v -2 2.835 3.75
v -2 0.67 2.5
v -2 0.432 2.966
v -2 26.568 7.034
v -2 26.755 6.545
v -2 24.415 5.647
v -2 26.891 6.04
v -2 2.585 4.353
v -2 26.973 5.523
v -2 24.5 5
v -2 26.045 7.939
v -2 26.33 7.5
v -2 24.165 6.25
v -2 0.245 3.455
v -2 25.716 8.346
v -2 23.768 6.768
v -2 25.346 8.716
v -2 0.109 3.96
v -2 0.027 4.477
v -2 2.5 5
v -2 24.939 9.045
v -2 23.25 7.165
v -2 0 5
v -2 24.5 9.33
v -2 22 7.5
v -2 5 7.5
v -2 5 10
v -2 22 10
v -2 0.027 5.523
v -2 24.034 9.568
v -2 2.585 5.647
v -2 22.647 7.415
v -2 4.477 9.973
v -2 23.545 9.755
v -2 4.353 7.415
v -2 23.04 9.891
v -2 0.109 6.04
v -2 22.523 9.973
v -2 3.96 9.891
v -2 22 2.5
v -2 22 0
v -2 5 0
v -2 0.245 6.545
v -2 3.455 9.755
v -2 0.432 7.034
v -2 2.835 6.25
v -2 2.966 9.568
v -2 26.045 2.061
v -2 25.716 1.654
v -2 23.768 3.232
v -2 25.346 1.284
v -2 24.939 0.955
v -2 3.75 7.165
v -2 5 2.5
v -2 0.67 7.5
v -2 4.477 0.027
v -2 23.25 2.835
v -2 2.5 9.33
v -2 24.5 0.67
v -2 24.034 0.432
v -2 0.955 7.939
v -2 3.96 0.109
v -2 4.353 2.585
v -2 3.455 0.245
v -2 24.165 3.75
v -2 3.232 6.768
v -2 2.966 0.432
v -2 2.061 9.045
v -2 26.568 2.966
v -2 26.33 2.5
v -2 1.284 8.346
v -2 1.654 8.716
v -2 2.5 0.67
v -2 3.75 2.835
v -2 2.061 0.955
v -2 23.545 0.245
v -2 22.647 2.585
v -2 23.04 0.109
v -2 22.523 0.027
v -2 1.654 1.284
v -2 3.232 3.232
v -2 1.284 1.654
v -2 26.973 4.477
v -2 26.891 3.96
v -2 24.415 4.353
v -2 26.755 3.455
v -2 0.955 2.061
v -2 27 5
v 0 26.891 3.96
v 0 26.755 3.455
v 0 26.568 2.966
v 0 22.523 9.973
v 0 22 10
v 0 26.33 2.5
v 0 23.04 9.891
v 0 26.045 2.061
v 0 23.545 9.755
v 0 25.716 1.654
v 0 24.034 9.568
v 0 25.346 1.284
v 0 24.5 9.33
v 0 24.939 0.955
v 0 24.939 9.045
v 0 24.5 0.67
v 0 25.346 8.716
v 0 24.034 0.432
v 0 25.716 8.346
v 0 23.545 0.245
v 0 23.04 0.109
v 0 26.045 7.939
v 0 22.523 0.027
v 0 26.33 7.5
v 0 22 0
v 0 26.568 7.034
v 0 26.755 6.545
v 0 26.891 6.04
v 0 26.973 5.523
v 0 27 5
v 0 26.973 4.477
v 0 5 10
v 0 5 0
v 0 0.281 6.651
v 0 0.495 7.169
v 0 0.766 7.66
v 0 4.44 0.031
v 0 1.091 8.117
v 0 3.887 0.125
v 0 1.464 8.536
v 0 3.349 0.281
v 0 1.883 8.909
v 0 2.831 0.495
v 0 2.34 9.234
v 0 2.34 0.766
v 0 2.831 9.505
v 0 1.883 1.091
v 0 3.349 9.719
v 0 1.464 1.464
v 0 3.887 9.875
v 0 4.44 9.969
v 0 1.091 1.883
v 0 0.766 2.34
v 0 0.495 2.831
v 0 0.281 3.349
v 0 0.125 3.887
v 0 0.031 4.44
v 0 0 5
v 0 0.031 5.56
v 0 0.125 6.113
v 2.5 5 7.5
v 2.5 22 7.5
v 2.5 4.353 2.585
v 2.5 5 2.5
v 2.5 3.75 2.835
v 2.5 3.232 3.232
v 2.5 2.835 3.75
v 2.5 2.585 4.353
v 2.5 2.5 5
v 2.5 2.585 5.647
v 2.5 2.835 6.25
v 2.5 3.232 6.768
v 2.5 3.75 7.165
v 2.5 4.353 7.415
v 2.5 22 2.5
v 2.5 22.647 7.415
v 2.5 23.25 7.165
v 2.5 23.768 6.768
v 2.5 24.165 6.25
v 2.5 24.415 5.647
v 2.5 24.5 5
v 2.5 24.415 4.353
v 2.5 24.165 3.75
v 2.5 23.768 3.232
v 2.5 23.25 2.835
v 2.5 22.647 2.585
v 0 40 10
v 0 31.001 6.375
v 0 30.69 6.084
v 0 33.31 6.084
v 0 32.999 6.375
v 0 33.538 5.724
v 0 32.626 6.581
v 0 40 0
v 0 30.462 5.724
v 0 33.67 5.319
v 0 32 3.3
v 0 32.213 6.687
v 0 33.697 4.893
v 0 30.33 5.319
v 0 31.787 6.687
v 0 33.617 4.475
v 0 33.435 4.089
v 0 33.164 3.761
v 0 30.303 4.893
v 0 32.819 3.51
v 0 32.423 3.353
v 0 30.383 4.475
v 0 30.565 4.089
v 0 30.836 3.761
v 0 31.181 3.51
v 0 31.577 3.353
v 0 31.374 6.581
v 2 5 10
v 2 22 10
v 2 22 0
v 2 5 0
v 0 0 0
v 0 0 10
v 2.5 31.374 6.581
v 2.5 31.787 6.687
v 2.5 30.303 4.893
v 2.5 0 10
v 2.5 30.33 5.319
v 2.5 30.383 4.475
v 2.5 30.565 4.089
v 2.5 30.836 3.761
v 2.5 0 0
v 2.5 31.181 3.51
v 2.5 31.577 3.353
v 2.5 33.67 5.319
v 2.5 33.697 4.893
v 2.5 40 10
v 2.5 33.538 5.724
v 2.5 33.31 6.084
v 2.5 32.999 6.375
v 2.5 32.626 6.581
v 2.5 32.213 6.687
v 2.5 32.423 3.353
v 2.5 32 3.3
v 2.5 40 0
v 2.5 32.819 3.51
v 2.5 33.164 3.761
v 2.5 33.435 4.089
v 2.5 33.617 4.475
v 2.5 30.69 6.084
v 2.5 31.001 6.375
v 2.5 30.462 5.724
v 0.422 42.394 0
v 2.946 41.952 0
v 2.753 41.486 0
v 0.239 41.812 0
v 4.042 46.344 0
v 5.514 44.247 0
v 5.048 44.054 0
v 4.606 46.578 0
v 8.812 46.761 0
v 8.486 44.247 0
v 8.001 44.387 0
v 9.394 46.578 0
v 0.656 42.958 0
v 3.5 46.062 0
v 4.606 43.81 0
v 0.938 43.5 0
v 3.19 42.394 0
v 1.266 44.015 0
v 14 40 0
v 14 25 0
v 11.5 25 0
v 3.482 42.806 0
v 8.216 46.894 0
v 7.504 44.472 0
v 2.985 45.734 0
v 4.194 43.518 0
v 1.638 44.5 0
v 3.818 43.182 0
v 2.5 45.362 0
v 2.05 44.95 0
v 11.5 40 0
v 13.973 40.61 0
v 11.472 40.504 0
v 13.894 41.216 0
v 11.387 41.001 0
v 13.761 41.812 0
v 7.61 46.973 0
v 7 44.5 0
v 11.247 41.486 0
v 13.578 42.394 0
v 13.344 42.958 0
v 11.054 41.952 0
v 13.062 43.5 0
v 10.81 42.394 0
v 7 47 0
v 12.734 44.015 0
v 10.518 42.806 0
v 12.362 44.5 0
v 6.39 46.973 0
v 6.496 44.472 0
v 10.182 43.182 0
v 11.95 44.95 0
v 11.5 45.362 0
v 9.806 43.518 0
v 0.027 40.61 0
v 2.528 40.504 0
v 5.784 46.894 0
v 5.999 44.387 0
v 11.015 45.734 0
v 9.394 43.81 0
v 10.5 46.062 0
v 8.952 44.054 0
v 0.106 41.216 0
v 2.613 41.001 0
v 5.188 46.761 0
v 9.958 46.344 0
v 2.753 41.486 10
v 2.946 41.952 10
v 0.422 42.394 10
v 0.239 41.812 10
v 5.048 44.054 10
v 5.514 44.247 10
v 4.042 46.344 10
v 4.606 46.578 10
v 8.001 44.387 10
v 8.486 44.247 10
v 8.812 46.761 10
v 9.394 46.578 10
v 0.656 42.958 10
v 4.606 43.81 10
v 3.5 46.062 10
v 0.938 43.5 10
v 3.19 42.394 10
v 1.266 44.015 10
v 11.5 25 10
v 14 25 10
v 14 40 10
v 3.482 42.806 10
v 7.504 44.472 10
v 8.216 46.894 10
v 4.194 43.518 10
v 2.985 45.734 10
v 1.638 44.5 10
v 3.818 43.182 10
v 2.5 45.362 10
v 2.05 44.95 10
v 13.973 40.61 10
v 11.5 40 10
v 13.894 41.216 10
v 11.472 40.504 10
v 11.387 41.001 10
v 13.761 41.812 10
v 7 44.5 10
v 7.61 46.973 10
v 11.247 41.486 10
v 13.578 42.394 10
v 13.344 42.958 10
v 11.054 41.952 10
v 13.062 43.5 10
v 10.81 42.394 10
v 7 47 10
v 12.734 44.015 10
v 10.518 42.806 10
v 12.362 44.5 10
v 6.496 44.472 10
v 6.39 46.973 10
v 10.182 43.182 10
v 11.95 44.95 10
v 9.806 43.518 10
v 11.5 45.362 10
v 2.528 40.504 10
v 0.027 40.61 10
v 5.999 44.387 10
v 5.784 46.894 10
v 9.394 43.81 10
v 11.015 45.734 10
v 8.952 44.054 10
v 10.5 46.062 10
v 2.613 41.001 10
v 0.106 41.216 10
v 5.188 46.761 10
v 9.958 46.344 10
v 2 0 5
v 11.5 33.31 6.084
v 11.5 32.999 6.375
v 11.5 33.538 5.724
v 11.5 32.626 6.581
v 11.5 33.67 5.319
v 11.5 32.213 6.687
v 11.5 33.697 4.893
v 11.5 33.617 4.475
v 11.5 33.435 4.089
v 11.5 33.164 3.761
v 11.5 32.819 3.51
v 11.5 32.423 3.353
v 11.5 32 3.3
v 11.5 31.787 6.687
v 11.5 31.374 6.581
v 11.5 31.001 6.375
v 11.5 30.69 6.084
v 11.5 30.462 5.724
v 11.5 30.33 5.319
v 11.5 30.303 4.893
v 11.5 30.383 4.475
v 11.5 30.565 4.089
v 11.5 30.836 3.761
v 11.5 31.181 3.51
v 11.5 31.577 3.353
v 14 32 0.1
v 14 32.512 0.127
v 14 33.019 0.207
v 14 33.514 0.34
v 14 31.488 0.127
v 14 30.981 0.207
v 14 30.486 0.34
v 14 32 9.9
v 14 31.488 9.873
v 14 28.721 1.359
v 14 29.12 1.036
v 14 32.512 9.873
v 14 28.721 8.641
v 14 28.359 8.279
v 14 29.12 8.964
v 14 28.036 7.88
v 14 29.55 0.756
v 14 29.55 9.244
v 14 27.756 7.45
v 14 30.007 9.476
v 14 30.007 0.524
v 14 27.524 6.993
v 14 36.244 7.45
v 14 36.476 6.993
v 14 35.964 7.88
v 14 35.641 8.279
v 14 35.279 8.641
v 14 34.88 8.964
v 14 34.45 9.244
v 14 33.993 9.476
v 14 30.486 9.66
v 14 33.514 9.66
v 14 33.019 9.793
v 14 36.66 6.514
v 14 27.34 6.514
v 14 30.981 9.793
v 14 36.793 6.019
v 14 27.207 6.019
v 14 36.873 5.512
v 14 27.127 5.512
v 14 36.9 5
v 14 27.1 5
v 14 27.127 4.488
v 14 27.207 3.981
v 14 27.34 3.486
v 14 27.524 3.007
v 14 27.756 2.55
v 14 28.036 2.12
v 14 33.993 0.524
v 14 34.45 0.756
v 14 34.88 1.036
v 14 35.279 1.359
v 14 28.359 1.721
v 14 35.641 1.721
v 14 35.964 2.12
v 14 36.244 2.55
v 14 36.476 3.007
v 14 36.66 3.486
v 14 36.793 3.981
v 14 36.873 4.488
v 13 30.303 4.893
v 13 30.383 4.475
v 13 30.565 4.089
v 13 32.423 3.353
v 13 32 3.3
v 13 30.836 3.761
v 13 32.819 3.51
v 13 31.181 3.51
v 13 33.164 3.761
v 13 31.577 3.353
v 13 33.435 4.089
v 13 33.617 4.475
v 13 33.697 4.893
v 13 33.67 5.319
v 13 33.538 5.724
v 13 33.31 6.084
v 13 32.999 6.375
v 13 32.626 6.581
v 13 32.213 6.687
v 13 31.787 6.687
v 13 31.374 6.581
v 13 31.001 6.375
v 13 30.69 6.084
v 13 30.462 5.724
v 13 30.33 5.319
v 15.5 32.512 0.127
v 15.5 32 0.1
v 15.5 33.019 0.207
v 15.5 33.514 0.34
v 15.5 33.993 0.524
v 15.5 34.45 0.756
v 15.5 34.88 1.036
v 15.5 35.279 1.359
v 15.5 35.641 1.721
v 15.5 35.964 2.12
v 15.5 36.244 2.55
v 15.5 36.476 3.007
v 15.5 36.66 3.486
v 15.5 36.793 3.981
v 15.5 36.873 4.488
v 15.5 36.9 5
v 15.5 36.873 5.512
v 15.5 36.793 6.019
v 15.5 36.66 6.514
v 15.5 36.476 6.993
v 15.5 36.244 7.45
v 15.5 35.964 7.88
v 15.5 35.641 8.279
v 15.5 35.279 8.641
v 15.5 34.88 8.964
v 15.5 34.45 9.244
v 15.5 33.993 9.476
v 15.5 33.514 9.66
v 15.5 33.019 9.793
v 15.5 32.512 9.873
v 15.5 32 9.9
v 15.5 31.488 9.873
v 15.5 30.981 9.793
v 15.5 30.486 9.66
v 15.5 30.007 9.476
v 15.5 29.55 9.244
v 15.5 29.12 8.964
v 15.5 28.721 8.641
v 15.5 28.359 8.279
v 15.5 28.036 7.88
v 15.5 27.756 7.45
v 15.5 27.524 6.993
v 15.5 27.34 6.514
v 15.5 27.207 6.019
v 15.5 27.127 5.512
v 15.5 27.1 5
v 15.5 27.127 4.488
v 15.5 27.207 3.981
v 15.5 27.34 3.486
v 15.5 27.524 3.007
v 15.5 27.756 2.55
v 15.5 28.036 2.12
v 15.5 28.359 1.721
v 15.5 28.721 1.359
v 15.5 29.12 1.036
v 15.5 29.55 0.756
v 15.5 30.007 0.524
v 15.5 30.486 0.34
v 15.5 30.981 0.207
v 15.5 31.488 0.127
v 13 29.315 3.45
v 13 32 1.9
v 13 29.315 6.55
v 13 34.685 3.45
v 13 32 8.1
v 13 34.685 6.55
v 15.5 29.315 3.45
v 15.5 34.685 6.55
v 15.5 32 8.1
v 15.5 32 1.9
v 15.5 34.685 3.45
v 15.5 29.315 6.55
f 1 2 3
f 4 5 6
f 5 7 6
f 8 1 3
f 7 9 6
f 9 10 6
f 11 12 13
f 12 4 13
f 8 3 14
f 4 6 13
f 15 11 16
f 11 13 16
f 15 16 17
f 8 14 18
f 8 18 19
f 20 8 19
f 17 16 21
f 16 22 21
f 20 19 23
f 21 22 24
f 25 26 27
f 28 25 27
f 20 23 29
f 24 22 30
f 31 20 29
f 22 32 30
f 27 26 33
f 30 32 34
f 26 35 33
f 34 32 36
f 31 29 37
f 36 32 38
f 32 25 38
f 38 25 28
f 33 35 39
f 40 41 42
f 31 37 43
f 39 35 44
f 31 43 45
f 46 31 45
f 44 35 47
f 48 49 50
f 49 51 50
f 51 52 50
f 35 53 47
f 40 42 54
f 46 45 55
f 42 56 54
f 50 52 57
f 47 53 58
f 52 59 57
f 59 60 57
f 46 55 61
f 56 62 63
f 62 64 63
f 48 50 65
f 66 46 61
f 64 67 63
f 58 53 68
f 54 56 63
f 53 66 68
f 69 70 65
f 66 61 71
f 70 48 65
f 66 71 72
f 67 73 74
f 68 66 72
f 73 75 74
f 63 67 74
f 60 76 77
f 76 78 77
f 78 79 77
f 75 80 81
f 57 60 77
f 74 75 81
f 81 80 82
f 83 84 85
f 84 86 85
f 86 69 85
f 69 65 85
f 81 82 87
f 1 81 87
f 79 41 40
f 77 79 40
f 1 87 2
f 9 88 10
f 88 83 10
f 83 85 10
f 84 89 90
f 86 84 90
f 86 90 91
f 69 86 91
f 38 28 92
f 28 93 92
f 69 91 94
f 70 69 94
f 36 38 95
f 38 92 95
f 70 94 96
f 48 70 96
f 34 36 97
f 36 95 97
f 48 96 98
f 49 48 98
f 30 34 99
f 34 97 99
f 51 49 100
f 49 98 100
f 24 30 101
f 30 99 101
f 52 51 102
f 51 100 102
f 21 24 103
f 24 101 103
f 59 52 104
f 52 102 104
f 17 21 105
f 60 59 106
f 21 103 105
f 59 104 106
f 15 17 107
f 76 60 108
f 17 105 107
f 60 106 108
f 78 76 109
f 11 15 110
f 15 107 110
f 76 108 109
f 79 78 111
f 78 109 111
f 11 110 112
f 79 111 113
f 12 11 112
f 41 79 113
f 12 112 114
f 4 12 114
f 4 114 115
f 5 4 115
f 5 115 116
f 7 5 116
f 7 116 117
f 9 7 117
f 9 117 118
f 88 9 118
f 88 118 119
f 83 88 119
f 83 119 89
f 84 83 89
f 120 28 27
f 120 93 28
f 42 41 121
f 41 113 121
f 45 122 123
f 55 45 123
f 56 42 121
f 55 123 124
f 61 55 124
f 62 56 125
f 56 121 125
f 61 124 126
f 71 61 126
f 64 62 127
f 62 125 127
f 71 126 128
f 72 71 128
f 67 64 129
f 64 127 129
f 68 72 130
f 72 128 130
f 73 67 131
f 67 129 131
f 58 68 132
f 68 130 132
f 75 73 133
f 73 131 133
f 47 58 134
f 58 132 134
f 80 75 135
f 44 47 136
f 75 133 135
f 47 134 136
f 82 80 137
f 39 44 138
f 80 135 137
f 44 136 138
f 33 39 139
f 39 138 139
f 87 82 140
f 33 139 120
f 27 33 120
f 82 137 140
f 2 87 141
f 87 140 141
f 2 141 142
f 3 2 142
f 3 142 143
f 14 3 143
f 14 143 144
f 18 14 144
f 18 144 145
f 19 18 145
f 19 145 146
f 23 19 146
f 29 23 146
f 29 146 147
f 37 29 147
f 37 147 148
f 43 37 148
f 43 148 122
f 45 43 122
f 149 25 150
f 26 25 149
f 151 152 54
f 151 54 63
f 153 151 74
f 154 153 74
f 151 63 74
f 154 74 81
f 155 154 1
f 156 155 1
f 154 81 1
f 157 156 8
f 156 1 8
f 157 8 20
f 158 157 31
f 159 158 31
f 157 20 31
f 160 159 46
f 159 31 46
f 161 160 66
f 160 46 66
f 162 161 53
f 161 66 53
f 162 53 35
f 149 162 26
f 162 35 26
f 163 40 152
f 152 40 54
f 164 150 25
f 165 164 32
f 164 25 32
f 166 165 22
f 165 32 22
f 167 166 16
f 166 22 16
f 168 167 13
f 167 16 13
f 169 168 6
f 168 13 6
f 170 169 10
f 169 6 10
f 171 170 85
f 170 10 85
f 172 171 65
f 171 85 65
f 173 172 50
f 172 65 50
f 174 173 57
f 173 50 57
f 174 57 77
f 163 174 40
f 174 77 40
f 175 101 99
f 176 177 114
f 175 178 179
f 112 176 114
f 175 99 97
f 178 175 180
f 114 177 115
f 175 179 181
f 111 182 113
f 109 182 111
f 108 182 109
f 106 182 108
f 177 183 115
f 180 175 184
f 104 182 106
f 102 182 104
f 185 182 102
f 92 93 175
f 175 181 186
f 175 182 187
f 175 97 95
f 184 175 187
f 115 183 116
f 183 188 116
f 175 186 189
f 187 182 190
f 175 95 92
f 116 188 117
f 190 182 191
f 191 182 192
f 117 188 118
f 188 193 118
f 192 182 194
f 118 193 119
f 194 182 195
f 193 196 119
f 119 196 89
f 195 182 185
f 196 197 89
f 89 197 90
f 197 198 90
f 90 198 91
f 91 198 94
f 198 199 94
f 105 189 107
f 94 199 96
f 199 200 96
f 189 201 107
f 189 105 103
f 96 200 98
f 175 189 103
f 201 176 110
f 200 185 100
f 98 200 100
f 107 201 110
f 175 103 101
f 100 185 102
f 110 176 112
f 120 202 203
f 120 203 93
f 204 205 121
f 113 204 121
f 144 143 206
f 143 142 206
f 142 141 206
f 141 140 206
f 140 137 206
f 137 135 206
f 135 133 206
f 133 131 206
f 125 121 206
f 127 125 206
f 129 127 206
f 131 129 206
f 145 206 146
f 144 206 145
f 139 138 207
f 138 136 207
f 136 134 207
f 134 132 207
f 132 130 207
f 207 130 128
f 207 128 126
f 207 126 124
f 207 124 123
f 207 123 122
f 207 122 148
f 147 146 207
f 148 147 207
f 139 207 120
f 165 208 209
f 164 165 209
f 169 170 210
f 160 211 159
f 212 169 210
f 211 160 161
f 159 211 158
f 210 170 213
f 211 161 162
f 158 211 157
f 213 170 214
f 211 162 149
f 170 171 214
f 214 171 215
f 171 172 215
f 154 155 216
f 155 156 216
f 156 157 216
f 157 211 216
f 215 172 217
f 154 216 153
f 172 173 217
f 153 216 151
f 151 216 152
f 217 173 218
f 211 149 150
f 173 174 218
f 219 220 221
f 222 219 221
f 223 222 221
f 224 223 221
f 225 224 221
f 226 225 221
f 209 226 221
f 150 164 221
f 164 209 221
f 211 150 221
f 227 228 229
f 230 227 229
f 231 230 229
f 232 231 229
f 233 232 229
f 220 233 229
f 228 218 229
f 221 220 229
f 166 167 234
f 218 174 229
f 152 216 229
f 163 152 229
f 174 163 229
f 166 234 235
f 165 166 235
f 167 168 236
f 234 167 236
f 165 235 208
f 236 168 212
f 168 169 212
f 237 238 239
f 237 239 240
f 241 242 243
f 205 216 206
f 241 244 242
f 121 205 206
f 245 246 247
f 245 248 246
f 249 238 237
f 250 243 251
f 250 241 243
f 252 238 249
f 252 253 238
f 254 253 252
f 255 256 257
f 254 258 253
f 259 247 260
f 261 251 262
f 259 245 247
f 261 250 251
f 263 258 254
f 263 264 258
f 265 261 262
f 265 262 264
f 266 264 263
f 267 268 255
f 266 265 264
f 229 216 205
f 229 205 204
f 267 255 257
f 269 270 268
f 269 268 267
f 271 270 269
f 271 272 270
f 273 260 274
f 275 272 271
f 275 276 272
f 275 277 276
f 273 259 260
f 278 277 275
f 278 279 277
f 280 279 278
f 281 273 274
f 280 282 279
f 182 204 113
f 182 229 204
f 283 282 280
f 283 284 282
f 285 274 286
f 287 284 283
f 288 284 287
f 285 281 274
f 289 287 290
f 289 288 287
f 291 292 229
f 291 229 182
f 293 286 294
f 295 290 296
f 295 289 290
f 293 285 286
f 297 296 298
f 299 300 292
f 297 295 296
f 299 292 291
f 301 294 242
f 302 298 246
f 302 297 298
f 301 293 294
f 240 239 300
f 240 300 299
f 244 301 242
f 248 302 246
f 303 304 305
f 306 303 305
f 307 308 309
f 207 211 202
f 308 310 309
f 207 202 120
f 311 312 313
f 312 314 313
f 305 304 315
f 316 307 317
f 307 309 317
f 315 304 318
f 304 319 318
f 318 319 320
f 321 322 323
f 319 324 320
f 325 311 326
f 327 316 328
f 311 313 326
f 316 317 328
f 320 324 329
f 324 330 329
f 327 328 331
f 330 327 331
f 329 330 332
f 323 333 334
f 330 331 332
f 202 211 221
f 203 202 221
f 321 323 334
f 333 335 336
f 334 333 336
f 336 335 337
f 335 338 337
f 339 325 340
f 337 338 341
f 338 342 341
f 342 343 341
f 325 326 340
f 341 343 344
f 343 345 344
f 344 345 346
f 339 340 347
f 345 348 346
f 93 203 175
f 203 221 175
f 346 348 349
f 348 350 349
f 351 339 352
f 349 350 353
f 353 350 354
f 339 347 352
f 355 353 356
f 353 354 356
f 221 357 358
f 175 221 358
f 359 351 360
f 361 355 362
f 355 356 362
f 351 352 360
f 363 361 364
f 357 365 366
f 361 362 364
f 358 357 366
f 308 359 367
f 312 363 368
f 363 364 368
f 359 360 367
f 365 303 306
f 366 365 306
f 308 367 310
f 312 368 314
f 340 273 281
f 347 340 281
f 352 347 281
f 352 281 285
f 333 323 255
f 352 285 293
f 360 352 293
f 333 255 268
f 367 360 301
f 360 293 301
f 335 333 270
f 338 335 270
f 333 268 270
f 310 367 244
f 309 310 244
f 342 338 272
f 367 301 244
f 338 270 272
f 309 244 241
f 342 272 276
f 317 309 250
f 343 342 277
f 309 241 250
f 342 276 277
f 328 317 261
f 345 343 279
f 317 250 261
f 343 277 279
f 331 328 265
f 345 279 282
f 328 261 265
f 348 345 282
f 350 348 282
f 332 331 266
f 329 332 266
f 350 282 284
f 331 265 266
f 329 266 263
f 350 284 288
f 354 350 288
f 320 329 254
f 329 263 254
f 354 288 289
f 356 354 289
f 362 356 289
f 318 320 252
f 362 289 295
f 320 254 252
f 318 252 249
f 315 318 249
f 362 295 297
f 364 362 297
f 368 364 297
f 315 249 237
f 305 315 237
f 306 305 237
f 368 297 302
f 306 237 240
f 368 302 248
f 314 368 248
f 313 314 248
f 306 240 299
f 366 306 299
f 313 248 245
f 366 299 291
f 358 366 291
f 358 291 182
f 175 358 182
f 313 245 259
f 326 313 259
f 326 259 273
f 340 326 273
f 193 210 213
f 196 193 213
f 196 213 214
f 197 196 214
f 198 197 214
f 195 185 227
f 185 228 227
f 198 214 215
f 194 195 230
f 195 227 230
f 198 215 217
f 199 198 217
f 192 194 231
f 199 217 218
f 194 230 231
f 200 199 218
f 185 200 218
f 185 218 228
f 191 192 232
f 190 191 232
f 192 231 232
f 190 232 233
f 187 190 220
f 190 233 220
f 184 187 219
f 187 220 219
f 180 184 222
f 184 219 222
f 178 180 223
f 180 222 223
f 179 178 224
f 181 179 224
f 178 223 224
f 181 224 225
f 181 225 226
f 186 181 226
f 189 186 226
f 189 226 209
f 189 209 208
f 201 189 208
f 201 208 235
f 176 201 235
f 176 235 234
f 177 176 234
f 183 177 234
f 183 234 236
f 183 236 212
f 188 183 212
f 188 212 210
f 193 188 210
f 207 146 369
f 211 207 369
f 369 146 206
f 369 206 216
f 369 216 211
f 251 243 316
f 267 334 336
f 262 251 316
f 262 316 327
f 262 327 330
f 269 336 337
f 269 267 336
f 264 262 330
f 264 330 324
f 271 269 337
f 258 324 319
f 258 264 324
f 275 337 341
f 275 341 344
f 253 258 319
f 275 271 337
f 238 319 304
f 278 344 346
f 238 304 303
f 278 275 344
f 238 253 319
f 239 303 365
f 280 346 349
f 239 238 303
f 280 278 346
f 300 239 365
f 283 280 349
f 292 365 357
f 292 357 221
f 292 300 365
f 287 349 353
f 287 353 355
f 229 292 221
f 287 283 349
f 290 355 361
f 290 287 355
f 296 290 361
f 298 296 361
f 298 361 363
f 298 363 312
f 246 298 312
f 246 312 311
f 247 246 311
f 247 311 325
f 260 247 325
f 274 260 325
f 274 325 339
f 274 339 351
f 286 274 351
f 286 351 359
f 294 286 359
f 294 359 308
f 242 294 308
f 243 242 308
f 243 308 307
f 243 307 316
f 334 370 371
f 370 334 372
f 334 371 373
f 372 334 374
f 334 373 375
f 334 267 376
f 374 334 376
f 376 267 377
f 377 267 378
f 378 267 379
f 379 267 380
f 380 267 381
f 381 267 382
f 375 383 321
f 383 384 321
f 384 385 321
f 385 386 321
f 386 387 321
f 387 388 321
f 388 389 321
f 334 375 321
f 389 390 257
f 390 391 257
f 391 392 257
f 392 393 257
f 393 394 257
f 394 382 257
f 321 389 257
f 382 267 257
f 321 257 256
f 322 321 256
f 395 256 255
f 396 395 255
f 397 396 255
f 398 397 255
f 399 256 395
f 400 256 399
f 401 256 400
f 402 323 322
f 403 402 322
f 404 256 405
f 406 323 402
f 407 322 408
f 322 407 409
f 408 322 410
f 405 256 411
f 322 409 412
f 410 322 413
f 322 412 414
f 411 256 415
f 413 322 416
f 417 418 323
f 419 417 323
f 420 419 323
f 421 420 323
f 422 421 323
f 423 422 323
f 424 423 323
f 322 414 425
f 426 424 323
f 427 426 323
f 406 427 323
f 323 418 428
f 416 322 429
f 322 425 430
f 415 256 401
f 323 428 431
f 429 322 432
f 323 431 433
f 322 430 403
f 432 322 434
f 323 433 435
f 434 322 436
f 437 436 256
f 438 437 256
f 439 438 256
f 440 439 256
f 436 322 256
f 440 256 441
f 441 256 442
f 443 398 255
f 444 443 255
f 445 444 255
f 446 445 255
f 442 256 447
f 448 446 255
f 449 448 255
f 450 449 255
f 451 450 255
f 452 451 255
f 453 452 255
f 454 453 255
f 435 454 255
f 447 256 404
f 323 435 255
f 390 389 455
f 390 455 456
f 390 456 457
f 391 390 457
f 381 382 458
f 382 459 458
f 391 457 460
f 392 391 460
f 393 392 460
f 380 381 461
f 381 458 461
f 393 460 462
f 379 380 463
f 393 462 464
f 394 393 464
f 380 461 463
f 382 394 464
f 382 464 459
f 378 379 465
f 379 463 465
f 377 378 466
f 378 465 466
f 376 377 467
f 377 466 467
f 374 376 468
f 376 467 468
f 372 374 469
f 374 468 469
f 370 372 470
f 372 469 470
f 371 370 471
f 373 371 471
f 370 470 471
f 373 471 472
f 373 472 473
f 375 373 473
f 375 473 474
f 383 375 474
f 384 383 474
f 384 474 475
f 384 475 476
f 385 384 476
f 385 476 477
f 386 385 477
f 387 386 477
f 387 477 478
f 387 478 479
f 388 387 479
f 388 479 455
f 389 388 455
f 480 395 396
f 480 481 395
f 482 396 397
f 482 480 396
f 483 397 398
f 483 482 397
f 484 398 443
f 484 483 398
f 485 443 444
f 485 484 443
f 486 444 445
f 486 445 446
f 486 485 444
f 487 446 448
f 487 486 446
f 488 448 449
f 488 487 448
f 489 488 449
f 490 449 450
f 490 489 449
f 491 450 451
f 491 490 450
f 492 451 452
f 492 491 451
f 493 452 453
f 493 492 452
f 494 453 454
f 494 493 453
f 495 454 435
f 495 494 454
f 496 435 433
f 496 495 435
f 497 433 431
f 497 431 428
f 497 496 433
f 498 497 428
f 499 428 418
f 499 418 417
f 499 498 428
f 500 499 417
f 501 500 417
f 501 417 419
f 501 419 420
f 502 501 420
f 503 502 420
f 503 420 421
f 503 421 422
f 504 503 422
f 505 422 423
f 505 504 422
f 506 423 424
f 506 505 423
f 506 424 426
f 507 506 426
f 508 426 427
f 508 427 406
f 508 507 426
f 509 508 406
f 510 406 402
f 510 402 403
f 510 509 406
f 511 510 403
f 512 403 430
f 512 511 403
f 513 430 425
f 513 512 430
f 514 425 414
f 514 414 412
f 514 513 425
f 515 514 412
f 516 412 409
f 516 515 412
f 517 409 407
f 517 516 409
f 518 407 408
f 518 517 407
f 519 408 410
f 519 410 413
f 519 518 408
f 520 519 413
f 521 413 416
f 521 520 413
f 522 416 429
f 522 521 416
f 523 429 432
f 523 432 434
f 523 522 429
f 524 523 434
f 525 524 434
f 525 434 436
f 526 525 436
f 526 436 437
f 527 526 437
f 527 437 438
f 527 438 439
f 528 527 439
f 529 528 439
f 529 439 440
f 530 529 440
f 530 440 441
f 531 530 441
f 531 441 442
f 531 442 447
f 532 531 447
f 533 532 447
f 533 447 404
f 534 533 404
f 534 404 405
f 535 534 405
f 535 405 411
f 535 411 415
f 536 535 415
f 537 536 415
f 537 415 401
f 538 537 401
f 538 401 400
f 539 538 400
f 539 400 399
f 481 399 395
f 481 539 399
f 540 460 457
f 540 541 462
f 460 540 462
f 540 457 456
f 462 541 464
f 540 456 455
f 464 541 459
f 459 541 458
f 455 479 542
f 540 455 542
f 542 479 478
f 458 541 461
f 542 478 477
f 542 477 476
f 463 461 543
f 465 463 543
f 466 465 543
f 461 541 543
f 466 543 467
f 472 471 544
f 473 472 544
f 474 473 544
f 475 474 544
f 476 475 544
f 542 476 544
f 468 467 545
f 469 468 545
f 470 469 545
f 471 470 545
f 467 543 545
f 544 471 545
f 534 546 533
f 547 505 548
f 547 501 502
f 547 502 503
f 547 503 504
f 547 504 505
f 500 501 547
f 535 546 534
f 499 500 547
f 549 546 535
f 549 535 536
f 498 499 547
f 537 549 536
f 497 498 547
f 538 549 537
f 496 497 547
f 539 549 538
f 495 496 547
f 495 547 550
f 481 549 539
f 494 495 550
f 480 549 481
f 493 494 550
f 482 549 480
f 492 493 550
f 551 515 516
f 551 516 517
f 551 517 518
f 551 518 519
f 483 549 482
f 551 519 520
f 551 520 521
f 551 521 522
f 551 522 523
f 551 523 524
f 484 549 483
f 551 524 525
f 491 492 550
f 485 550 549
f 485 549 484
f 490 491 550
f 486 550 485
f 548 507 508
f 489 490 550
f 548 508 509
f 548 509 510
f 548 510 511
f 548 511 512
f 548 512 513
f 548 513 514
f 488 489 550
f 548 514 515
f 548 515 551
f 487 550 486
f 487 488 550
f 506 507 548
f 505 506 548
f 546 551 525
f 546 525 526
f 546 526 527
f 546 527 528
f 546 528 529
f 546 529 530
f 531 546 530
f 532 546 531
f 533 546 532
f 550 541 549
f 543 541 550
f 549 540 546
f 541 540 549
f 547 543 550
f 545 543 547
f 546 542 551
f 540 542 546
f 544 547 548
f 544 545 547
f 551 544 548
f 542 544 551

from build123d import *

# Parameters (mm, degrees)
PRISM_DEPTH             = 4
PRISM_PITCH_ANGLE       = 90
CYLINDER_R              = 1.7
CYLINDER_DEPTH          = 20
CYLINDER_PITCH_ANGLE    = 90
CYLINDER001_R           = 4.9
CYLINDER001_DEPTH       = 3
CYLINDER001_PITCH_ANGLE = 90
PAD_DEPTH               = 10
PAD001_DEPTH            = 2
POCKET_DEPTH            = 5


with BuildPart() as prisma:
    # Prism → Prism (new body)
    with BuildSketch(Plane.XY):
        Polygon((3.1, 0), (1.55, 2.684679), (-1.55, 2.684679), (-3.1, 0), (-1.55, -2.684679), (1.55, -2.684679), align=None)
    extrude(amount=PRISM_DEPTH)


with BuildPart() as prisma_1:
    # Prism pitch: moved
    add(prisma.part.rotate(Axis((0, 0, 0), (0, 1, 0)), PRISM_PITCH_ANGLE))


with BuildPart() as prisma_2:
    # Prism placement: moved
    add(prisma_1.part.moved(Location((13, 32, 5))))


with BuildPart() as cilindro:
    # Cylinder → Cylinder (new body)
    with BuildSketch(Plane.XY):
        Circle(CYLINDER_R)
    extrude(amount=CYLINDER_DEPTH)


with BuildPart() as cilindro_1:
    # Cylinder pitch: moved
    add(cilindro.part.rotate(Axis((0, 0, 0), (0, 1, 0)), CYLINDER_PITCH_ANGLE))


with BuildPart() as cilindro_2:
    # Cylinder placement: moved
    add(cilindro_1.part.moved(Location((-4, 32, 5))))


with BuildPart() as cilindro001:
    # Cylinder001 → Cylinder001 (new body)
    with BuildSketch(Plane.XY):
        Circle(CYLINDER001_R)
    extrude(amount=CYLINDER001_DEPTH)


with BuildPart() as cilindro001_1:
    # Cylinder001 pitch: moved
    add(cilindro001.part.rotate(Axis((0, 0, 0), (0, 1, 0)), CYLINDER001_PITCH_ANGLE))


with BuildPart() as cilindro001_2:
    # Cylinder001 placement: moved
    add(cilindro001_1.part.moved(Location((12.5, 32, 5))))


with BuildPart() as pocket:
    # Sketch → Pad (new body)
    with BuildSketch(Plane.XY):
        with BuildLine():
            Line((0, 40), (0, 0))
            Line((0, 0), (2.5, 0))
            Line((2.5, 0), (2.5, 40))
            ThreePointArc((11.5, 40), (7, 44.5), (2.5, 40))
            Line((11.5, 40), (11.5, 25))
            Line((11.5, 25), (14, 25))
            Line((14, 25), (14, 40))
            ThreePointArc((14, 40), (7, 47), (0, 40))
        make_face()
    extrude(amount=PAD_DEPTH)

    # Fusion: union Cilindro001
    add(cilindro001_2.part)

    # Cut: cut Cilindro
    add(cilindro_2.part, mode=Mode.SUBTRACT)

    # Cut001: cut Prisma
    add(prisma_2.part, mode=Mode.SUBTRACT)

    # Sketch001 → Pad001 (new body, symmetric)
    with BuildSketch(Plane(origin=(0, 0, 0), x_dir=(0, -1, 0), z_dir=(-1, 0, 0))):
        with BuildLine():
            ThreePointArc((-22.000056, 10), (-27.000056, 4.999986), (-22.000028, 0))
            Line((-22.000028, 0), (-5.000028, 0))
            ThreePointArc((-5.000028, 0), (0, 4.999986), (-5, 10))
            Line((-22.000056, 10), (-5, 10))
        make_face()
    extrude(amount=PAD001_DEPTH, both=True)

    # Sketch002 → Pocket (cut)
    with BuildSketch(Plane(origin=(-2, 0, 0), x_dir=(0, -1, 0), z_dir=(-1, 0, 0))):
        with BuildLine():
            ThreePointArc((-21.99998, 7.5), (-24.499981, 5.00001), (-22, 2.5))
            Line((-22, 2.5), (-5, 2.5))
            ThreePointArc((-5, 2.5), (-2.500017, 5.000009), (-5.000017, 7.5))
            Line((-21.99998, 7.5), (-5.000017, 7.5))
        make_face()
    extrude(amount=-POCKET_DEPTH, mode=Mode.SUBTRACT)


solid = pocket.part
